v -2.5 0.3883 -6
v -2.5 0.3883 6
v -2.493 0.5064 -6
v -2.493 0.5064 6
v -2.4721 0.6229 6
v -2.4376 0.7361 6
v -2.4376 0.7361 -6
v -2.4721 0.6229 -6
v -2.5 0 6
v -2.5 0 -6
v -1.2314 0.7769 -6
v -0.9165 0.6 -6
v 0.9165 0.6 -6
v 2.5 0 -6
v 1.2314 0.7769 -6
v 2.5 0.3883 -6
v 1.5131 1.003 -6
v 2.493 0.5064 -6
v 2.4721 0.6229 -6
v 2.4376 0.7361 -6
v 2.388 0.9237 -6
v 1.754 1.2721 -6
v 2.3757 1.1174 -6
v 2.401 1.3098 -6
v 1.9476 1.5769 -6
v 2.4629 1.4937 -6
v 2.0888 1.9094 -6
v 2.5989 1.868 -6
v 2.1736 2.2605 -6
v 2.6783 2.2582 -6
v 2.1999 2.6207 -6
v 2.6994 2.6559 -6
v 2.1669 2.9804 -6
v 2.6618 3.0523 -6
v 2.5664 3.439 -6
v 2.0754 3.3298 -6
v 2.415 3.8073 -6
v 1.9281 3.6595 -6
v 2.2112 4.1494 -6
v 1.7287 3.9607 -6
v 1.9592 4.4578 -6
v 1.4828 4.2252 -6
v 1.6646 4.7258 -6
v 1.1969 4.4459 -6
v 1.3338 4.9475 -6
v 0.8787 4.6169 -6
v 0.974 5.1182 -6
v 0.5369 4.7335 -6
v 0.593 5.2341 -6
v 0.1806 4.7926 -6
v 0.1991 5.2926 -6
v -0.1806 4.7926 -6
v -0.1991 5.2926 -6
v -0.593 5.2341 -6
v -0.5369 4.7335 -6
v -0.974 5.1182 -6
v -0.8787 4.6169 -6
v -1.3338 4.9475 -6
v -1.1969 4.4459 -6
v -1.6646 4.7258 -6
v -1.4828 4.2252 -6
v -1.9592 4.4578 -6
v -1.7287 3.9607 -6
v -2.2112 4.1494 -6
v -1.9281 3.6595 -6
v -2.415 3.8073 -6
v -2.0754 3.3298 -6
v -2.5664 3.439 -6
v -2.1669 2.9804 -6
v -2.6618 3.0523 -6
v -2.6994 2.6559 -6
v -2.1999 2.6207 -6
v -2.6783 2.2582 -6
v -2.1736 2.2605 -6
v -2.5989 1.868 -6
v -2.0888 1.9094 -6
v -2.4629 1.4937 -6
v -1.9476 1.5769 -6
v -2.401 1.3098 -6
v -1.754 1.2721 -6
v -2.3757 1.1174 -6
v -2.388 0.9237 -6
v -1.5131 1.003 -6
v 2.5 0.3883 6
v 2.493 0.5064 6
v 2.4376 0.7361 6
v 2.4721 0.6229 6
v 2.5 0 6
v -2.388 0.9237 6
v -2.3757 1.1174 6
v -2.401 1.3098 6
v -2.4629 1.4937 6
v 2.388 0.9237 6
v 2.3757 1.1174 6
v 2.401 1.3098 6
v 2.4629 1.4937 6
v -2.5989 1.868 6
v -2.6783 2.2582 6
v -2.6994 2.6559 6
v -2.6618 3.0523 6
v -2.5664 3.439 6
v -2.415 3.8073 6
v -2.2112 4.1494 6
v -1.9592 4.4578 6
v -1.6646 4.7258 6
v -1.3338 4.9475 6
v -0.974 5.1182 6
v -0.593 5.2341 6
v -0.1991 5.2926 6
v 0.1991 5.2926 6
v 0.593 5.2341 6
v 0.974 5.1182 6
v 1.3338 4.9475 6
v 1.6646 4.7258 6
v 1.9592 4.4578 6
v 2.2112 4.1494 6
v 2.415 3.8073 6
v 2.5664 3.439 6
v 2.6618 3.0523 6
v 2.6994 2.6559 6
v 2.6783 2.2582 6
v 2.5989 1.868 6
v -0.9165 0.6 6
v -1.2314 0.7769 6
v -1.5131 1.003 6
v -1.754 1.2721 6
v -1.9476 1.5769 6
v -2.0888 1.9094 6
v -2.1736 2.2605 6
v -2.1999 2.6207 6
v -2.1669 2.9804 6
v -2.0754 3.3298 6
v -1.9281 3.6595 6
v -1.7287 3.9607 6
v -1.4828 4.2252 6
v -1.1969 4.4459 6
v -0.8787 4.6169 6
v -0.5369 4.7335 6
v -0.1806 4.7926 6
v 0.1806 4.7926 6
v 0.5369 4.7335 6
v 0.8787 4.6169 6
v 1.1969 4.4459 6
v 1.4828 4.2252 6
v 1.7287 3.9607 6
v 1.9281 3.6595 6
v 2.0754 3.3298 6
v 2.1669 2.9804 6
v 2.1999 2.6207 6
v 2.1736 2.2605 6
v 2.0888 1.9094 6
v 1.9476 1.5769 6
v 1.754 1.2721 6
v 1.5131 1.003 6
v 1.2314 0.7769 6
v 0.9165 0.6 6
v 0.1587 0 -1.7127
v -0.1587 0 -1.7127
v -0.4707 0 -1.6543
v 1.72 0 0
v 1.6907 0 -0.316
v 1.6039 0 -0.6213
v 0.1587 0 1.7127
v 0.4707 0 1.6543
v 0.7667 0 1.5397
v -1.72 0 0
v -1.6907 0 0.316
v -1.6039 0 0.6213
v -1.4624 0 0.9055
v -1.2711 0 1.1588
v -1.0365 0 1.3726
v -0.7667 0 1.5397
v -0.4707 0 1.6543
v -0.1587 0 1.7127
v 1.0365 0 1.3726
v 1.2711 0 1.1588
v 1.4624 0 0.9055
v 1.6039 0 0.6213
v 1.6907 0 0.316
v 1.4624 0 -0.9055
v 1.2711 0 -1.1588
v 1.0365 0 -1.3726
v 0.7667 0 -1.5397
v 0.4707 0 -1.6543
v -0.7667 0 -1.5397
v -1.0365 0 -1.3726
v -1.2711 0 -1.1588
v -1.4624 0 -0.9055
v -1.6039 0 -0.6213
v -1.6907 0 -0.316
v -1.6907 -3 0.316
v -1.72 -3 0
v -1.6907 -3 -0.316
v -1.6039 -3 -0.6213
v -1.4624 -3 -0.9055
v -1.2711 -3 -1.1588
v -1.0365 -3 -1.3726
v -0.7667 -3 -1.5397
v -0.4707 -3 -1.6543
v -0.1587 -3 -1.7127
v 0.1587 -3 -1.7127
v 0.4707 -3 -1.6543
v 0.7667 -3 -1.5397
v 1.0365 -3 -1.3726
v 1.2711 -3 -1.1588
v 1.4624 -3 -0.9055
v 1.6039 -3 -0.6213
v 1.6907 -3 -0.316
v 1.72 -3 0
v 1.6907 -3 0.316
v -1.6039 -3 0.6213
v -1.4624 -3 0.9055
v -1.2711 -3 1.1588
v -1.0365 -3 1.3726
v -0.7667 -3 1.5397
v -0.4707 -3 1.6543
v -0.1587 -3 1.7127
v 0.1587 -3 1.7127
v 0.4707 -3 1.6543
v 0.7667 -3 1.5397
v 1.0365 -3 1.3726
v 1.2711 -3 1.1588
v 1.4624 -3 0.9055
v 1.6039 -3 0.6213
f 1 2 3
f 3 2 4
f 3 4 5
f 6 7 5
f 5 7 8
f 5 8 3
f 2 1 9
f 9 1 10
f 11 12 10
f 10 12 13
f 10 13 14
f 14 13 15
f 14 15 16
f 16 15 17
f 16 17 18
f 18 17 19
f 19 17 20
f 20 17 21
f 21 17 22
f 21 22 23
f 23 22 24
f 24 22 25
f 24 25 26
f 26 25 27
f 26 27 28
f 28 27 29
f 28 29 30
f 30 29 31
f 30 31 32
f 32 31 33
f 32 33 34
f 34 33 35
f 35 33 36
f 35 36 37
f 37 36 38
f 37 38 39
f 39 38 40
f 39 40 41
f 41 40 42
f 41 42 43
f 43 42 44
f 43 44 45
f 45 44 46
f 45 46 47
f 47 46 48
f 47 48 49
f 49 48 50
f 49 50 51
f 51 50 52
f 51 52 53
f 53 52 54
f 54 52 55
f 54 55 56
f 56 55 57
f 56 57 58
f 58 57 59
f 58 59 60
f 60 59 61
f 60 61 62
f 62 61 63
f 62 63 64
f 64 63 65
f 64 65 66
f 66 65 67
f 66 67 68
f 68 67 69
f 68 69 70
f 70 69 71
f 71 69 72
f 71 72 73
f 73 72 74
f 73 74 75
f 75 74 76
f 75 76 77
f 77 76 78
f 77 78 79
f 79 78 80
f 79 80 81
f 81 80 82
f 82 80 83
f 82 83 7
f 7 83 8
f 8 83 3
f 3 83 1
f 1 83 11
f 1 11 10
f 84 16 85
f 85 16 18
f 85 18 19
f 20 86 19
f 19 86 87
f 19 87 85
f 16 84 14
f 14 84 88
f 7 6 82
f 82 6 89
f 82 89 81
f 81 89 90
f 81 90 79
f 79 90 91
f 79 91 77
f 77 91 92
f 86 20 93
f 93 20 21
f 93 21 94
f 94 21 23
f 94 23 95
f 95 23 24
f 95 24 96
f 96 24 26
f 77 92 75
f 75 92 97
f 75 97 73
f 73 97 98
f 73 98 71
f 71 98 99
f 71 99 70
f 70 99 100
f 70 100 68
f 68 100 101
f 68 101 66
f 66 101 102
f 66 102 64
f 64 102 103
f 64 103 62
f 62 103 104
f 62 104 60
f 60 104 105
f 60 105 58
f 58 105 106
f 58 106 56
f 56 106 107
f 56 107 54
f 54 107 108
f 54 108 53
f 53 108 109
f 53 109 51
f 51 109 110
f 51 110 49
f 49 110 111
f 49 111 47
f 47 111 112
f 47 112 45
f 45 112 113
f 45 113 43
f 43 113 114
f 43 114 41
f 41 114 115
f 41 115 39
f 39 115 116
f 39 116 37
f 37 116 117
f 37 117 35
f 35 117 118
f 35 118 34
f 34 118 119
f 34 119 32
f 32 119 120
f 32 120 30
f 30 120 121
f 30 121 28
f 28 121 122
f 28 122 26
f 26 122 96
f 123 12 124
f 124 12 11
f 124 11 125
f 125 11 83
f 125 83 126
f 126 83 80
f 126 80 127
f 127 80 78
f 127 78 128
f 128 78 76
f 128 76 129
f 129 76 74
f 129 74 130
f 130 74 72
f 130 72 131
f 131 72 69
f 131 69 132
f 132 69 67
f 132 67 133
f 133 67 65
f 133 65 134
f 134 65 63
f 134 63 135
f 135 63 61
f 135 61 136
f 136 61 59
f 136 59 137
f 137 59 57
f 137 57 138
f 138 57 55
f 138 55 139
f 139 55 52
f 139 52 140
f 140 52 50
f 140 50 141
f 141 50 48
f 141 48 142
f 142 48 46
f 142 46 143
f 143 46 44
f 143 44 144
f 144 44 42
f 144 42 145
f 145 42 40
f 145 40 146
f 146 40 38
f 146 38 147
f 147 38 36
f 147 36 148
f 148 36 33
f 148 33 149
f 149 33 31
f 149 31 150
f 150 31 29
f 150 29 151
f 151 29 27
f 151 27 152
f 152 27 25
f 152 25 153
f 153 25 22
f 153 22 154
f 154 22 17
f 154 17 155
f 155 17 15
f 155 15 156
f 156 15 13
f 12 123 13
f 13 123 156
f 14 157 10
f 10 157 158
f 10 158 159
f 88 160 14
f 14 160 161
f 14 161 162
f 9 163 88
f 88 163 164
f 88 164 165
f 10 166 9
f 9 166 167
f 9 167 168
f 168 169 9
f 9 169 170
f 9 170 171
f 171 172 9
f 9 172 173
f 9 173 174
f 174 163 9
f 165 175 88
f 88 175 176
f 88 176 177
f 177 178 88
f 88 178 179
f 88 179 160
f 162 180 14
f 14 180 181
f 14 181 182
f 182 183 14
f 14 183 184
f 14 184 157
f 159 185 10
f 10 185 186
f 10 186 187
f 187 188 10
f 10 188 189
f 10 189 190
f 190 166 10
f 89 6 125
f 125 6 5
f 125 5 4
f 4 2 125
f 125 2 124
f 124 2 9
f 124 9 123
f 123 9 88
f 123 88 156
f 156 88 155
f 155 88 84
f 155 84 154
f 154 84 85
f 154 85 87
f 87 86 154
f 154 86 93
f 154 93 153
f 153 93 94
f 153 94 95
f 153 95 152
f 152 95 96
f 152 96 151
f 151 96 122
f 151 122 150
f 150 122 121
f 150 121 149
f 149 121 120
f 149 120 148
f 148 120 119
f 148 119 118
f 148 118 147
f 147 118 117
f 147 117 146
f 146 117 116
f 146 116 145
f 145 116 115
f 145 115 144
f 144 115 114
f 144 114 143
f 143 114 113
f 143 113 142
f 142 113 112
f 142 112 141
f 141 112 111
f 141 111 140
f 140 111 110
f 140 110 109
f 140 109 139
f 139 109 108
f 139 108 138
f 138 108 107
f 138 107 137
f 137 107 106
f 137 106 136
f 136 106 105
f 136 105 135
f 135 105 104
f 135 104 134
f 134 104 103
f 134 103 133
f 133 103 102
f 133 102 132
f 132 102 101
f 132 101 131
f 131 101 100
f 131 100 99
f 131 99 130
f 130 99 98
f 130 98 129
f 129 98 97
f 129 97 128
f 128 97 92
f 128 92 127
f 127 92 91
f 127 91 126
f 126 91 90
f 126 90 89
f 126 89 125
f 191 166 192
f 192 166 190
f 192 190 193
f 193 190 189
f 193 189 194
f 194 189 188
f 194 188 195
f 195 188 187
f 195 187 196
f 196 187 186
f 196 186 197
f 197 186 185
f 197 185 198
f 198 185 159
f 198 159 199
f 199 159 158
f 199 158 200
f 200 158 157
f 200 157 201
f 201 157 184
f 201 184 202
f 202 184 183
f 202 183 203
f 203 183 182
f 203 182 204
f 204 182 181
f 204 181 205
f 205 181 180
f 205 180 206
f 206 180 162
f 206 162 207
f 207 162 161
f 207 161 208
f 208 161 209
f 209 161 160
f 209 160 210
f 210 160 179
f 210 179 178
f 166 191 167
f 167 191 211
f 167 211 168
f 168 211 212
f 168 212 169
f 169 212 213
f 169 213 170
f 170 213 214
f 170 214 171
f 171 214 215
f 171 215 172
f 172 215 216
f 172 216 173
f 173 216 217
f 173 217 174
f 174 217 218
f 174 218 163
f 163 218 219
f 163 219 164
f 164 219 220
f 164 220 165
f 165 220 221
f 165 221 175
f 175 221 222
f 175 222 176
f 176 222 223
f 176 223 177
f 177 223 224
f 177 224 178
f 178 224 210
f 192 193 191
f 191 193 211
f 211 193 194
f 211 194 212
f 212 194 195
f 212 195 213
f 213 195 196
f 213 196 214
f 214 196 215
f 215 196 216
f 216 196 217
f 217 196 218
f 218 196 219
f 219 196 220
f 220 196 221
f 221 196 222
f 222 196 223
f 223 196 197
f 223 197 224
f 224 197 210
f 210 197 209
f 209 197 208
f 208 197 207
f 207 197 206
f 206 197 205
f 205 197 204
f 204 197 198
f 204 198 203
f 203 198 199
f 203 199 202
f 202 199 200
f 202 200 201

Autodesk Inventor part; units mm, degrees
ref_plane "YZ Plane" through (0, 0, 0) normal (1, 0, 0) x (0, 1, 0)
ref_plane "XZ Plane" through (0, 0, 0) normal (0, 1, 0) x (-1, 0, 0)
ref_plane "XY Plane" through (0, 0, 0) normal (0, 0, 1) x (1, 0, 0)
sketch "Szkic1" plane through (0, 0, 0) normal (0, 1, 0) x (-1, 0, 0)
  circle A0 centre (0, 0) radius 1.72
  line L0 (-2.5, 6) -> (2.5, 6)
  line L1 (2.5, 6) -> (2.5, -6)
  line L2 (2.5, -6) -> (-2.5, -6)
  line L3 (-2.5, -6) -> (-2.5, 6)
  line L4 (-2.5, 6) -> (2.5, -6) construction
  line L5 (2.5, 6) -> (-2.5, -6) construction
  dimension "d0" = 3.44
  dimension "d1" = 5
  dimension "d2" = 12
extrude "Wyciągnięcie proste1" add sketch "Szkic1" against normal blind 3 contours A0
extrude "Wyciągnięcie proste2" add sketch "Szkic1" along normal blind 0.6 contours A0 | L0 L1 L2 L3
sketch "Szkic2" plane through (-2.5, 0, 6) normal (0, 0, 1) x (1, 0, 0)
  line L0 (5, 0.6) -> (0, 0.6) projected
  line L1 (2.5, 0.6) -> (2.5, 2.6)
  line L2 (2.5, 0.6) -> (4.5, 0.6) construction
  circle A0 centre (2.5, 2.6) radius 2.2
  line L3 (0, 0.6) -> (5, 0.6)
  circle A1 centre (2.5, 2.6) radius 2.7
  point P0 (2.5, 0)
  point P1 (4.3138, 0.6)
  point P2 (0.6862, 0.6)
  point P3 (1.5835, 0.6)
  point P4 (3.4165, 0.6)
  dimension "d7" = 2
  dimension "d8" = 90
  dimension "d9" = 4.4
  dimension "d10" = 5.4
extrude "Wyciągnięcie proste3" add sketch "Szkic2" against normal up to surface (12 mm away) contours L0 A0 A1 picked at (4.985, 2.9942)
fillet "Zaokrąglenie1" radius 1 4 edges at (1.8138, 0.6, 0) (-1.8138, 0.6, 0) (2.5, 0.6, 0) (-2.5, 0.6, 0)
properties part number "wire_loop"
